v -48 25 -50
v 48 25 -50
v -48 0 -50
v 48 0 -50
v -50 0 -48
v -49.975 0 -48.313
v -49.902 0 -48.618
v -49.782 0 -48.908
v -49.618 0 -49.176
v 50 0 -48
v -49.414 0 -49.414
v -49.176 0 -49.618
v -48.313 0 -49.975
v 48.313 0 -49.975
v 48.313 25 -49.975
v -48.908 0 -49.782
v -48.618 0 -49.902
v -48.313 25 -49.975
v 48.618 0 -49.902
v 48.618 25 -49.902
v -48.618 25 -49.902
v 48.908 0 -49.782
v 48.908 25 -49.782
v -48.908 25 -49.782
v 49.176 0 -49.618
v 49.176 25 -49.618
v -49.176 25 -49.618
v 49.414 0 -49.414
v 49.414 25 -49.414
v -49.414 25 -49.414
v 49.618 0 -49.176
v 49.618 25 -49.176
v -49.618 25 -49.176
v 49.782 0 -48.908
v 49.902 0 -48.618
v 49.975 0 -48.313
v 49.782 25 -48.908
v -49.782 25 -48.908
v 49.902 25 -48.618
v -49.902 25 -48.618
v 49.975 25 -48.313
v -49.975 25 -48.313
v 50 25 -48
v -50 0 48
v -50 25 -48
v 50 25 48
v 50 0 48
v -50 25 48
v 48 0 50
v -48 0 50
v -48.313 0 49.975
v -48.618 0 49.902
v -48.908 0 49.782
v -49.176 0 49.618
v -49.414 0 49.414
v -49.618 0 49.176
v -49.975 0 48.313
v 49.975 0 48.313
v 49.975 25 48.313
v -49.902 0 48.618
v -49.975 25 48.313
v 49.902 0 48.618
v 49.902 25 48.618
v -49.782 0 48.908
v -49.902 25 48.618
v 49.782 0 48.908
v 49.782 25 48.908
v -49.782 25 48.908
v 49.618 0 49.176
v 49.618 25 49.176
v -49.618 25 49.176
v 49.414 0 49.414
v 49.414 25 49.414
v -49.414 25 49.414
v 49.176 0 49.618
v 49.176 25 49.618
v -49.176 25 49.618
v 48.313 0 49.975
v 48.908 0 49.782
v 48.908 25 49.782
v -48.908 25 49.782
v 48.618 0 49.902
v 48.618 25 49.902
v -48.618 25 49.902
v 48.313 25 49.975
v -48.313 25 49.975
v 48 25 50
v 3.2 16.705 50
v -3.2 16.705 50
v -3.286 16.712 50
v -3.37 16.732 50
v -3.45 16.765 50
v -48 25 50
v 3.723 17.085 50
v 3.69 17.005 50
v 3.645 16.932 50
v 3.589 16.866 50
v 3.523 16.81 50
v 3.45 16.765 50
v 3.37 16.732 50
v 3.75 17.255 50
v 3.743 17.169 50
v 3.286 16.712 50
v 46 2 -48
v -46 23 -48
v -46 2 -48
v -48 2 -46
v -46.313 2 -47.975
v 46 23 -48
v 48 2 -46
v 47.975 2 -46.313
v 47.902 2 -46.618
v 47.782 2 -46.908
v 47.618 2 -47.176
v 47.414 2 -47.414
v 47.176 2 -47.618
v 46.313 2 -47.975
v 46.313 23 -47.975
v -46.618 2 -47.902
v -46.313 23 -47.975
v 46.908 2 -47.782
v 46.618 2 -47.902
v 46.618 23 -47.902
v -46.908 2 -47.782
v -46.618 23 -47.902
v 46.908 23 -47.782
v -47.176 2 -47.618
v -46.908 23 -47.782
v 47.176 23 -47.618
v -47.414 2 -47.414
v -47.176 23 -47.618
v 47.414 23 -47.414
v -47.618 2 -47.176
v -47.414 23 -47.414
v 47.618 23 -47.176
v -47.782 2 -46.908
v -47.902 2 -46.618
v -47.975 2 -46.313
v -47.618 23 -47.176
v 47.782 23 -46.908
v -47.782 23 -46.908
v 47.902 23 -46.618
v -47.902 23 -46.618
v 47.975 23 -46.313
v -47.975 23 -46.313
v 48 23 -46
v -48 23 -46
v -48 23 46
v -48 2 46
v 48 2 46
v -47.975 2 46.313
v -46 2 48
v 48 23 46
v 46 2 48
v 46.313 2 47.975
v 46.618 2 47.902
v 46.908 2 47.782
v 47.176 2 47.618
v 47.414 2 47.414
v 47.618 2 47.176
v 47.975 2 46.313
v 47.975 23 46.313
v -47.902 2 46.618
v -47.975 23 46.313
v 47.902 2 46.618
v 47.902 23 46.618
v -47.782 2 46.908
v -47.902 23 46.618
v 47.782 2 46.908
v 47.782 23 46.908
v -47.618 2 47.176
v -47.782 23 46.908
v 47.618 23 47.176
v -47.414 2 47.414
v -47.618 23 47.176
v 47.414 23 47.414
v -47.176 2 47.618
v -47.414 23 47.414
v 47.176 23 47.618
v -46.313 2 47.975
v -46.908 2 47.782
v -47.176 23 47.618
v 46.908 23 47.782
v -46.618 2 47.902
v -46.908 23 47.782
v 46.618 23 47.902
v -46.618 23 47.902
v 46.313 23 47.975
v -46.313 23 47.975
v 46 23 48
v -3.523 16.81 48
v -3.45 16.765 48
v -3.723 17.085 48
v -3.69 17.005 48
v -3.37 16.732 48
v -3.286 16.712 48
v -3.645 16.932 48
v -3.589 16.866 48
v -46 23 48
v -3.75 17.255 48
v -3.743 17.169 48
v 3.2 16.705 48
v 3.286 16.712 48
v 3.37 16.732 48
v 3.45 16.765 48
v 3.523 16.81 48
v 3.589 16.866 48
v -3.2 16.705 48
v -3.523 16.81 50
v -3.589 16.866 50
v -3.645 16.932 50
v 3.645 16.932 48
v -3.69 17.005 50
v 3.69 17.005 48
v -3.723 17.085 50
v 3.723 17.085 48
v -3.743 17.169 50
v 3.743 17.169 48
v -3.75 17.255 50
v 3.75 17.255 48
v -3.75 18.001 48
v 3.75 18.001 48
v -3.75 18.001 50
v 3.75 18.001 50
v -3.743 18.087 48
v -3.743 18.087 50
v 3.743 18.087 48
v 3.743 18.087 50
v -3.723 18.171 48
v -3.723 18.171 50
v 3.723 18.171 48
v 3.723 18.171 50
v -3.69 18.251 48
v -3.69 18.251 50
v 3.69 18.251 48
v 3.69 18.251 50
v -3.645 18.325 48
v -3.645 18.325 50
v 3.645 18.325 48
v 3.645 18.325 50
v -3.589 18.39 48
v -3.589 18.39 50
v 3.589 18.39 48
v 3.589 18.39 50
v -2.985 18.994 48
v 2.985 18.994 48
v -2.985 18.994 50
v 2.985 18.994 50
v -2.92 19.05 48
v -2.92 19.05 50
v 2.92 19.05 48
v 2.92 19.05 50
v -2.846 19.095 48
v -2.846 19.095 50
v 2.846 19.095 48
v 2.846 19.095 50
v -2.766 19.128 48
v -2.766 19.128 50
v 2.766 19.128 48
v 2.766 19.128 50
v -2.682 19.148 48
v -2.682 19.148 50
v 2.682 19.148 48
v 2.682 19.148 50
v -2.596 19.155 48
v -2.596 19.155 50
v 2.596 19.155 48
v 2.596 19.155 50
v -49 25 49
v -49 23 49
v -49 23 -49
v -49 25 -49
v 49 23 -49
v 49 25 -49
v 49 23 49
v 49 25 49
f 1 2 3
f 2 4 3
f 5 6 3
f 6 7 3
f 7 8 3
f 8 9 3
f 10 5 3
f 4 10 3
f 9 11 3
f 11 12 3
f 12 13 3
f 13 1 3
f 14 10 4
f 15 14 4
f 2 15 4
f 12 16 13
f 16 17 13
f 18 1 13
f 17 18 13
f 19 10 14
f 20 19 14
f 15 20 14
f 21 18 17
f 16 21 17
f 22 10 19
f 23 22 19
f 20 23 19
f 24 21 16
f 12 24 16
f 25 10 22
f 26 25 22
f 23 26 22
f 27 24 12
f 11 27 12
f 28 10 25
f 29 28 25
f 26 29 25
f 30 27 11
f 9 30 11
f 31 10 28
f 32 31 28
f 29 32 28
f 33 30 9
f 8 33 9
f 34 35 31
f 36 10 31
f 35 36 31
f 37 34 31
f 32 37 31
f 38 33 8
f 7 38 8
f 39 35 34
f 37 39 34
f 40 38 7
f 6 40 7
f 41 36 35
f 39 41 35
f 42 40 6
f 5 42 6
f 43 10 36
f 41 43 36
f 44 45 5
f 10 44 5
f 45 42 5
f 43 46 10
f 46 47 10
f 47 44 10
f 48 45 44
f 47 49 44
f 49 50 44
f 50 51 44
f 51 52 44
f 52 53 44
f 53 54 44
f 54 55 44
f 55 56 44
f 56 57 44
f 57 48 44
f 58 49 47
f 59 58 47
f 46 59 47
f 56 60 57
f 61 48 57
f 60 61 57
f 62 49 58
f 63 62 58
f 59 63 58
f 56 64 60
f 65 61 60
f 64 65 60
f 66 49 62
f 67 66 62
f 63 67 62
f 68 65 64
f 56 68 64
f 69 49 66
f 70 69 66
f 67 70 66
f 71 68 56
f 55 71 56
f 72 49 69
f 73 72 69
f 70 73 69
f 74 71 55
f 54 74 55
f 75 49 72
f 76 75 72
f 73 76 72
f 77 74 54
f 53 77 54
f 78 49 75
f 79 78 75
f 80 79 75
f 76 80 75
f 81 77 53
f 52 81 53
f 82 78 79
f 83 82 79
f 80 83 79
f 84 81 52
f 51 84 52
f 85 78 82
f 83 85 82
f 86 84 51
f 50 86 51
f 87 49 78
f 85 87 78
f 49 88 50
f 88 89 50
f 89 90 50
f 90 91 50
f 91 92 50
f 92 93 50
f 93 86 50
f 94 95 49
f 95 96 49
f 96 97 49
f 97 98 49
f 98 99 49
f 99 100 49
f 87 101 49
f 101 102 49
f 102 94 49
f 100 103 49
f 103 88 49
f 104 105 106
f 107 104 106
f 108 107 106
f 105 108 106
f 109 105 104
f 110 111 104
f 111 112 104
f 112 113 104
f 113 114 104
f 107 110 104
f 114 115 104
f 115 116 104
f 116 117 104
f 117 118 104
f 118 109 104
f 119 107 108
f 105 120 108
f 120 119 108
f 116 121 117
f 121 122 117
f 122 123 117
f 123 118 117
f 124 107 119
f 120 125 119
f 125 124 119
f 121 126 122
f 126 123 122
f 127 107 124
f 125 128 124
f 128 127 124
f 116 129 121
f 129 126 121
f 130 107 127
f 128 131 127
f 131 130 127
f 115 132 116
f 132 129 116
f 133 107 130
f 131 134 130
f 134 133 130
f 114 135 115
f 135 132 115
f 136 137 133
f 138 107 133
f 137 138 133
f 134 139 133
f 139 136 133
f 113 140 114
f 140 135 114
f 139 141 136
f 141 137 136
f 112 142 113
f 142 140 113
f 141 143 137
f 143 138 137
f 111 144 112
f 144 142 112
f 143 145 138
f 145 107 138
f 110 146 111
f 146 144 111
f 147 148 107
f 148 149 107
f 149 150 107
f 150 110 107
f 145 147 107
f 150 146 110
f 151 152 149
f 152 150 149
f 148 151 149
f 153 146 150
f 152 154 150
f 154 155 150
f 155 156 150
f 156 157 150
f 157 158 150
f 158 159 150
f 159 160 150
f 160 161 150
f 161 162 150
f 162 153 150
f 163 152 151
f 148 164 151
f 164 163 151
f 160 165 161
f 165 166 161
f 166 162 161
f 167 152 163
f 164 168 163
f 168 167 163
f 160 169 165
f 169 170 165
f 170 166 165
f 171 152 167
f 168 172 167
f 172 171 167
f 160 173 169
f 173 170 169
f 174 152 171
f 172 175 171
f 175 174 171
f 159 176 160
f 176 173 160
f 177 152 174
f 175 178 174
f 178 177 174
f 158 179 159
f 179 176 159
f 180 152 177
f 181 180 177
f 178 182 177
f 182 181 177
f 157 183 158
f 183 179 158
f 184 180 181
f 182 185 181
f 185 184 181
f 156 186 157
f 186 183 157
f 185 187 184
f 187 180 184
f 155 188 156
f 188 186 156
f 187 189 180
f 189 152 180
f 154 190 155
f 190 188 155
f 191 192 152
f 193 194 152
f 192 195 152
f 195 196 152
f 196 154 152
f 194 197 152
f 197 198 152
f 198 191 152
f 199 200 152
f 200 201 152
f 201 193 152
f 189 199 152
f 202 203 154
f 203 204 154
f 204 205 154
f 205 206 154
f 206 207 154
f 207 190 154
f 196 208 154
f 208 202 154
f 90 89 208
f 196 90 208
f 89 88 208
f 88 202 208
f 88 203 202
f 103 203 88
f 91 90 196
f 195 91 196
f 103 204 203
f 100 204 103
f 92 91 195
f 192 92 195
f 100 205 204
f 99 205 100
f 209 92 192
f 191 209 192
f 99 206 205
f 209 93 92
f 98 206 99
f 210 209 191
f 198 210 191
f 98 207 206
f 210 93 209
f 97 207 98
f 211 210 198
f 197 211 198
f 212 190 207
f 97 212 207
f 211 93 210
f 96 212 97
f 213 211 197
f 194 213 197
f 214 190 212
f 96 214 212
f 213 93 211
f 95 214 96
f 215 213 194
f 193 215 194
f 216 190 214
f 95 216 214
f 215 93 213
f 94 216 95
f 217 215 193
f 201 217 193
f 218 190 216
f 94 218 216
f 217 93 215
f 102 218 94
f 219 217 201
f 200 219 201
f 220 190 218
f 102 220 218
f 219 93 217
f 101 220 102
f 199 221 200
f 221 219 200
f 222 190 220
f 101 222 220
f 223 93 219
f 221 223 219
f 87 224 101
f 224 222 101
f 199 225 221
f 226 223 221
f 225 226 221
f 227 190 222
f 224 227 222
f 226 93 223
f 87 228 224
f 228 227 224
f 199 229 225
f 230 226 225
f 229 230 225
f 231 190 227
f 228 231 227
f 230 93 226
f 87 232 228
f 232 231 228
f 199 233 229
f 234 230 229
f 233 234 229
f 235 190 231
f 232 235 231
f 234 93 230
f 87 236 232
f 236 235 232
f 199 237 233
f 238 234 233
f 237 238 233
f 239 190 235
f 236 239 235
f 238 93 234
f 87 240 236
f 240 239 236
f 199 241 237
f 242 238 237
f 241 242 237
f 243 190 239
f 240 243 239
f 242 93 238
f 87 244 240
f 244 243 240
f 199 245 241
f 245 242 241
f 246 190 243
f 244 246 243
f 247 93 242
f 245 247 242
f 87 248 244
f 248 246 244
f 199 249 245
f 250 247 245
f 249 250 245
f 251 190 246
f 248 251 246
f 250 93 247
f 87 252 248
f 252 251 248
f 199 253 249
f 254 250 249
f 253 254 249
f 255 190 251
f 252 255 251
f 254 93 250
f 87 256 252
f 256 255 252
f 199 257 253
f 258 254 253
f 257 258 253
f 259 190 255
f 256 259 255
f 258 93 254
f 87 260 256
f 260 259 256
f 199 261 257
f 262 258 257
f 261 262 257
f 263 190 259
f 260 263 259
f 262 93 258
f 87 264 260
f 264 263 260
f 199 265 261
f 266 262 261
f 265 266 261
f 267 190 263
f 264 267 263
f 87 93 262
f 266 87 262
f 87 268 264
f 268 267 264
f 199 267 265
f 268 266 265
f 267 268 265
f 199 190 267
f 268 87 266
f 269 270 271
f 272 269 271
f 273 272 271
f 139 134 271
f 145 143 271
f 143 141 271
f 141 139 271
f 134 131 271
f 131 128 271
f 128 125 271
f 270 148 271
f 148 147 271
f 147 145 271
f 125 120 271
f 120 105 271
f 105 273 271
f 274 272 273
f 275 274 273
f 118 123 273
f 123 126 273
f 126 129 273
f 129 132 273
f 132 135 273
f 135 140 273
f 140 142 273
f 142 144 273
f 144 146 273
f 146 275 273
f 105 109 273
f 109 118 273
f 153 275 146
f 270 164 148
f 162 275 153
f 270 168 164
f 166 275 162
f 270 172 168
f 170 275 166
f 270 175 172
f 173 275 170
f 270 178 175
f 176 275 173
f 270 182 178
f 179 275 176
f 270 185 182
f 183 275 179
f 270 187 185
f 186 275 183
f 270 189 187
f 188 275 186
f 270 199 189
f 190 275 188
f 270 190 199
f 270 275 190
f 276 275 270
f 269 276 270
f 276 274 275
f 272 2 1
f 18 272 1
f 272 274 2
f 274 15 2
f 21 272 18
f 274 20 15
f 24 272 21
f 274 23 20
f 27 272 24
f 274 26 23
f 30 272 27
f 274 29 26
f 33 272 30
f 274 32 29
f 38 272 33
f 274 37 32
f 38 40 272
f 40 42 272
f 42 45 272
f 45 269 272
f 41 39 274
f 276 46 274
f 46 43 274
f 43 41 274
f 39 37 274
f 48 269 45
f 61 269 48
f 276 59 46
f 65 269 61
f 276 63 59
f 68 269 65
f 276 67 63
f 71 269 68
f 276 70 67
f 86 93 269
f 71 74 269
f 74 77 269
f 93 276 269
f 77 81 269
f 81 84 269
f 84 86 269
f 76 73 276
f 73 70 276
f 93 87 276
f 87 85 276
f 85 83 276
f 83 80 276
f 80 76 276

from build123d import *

# Parameters (mm, degrees)
BOSS_EXTRUDE1_DEPTH = 25
SHELL8_T            = -2
CUT_EXTRUDE1_DEPTH  = 76
SKETCH3_W           = 98
SKETCH3_H           = 98
CUT_EXTRUDE2_DEPTH  = 2
FILLET1_R           = 2
FILLET2_R           = 2


with BuildPart() as part:
    # Sketch1 → Boss-Extrude1 (new body)
    with BuildSketch(Plane(origin=(0, 0, 0), x_dir=(1, 0, 0), z_dir=(0, 1, 0))):
        Polygon((0, -50), (50, -50), (50, 50), (-50, 50), (-50, -50), align=None)
    extrude(amount=BOSS_EXTRUDE1_DEPTH)

    # Shell8
    shell8_openings = [part.faces().sort_by_distance(p)[0] for p in [
        (0, 25, 0),
    ]]
    offset(amount=SHELL8_T, openings=shell8_openings, kind=Kind.INTERSECTION)

    # Sketch2 → Cut-Extrude1 (cut, through all)
    with BuildSketch(Plane.XY):
        with BuildLine():
            ThreePointArc((3.75, 17.255), (3.58890873, 16.86609127), (3.2, 16.705))
            Line((3.2, 16.705), (-3.2, 16.705))
            ThreePointArc((-3.2, 16.705), (-3.58890873, 16.86609127), (-3.75, 17.255))
            Line((-3.75, 17.255), (-3.75, 18.001446611))
            ThreePointArc((-3.75, 18.001446611), (-3.708133743, 18.211922498), (-3.58890873, 18.390355339))
            Line((-3.58890873, 18.390355339), (-2.985355339, 18.99390873))
            ThreePointArc((-2.985355339, 18.99390873), (-2.806922497, 19.113133743), (-2.596446609, 19.155))
            Line((-2.596446609, 19.155), (2.596446609, 19.155))
            ThreePointArc((2.596446609, 19.155), (2.806922497, 19.113133743), (2.985355339, 18.99390873))
            Line((2.985355339, 18.99390873), (3.58890873, 18.390355339))
            ThreePointArc((3.58890873, 18.390355339), (3.708133743, 18.211922498), (3.75, 18.001446611))
            Line((3.75, 18.001446611), (3.75, 17.255))
        make_face()
    extrude(amount=CUT_EXTRUDE1_DEPTH, mode=Mode.SUBTRACT)

    # Sketch3 → Cut-Extrude2 (cut)
    with BuildSketch(Plane(origin=(0, 25, 0), x_dir=(1, 0, 0), z_dir=(0, 1, 0))):
        Rectangle(SKETCH3_W, SKETCH3_H)
    extrude(amount=-CUT_EXTRUDE2_DEPTH, mode=Mode.SUBTRACT)

    # Fillet1
    fillet1_edges = [part.edges().sort_by_distance(p)[0] for p in [
        (-50, 12.5, 50),
        (-50, 12.5, -50),
        (50, 12.5, -50),
        (50, 12.5, 50),
    ]]
    fillet(fillet1_edges, radius=FILLET1_R)

    # Fillet2
    fillet2_edges = [part.edges().sort_by_distance(p)[0] for p in [
        (-48, 12.5, -48),
        (-48, 12.5, 48),
        (48, 12.5, -48),
        (48, 12.5, 48),
    ]]
    fillet(fillet2_edges, radius=FILLET2_R)


solid = part.part
